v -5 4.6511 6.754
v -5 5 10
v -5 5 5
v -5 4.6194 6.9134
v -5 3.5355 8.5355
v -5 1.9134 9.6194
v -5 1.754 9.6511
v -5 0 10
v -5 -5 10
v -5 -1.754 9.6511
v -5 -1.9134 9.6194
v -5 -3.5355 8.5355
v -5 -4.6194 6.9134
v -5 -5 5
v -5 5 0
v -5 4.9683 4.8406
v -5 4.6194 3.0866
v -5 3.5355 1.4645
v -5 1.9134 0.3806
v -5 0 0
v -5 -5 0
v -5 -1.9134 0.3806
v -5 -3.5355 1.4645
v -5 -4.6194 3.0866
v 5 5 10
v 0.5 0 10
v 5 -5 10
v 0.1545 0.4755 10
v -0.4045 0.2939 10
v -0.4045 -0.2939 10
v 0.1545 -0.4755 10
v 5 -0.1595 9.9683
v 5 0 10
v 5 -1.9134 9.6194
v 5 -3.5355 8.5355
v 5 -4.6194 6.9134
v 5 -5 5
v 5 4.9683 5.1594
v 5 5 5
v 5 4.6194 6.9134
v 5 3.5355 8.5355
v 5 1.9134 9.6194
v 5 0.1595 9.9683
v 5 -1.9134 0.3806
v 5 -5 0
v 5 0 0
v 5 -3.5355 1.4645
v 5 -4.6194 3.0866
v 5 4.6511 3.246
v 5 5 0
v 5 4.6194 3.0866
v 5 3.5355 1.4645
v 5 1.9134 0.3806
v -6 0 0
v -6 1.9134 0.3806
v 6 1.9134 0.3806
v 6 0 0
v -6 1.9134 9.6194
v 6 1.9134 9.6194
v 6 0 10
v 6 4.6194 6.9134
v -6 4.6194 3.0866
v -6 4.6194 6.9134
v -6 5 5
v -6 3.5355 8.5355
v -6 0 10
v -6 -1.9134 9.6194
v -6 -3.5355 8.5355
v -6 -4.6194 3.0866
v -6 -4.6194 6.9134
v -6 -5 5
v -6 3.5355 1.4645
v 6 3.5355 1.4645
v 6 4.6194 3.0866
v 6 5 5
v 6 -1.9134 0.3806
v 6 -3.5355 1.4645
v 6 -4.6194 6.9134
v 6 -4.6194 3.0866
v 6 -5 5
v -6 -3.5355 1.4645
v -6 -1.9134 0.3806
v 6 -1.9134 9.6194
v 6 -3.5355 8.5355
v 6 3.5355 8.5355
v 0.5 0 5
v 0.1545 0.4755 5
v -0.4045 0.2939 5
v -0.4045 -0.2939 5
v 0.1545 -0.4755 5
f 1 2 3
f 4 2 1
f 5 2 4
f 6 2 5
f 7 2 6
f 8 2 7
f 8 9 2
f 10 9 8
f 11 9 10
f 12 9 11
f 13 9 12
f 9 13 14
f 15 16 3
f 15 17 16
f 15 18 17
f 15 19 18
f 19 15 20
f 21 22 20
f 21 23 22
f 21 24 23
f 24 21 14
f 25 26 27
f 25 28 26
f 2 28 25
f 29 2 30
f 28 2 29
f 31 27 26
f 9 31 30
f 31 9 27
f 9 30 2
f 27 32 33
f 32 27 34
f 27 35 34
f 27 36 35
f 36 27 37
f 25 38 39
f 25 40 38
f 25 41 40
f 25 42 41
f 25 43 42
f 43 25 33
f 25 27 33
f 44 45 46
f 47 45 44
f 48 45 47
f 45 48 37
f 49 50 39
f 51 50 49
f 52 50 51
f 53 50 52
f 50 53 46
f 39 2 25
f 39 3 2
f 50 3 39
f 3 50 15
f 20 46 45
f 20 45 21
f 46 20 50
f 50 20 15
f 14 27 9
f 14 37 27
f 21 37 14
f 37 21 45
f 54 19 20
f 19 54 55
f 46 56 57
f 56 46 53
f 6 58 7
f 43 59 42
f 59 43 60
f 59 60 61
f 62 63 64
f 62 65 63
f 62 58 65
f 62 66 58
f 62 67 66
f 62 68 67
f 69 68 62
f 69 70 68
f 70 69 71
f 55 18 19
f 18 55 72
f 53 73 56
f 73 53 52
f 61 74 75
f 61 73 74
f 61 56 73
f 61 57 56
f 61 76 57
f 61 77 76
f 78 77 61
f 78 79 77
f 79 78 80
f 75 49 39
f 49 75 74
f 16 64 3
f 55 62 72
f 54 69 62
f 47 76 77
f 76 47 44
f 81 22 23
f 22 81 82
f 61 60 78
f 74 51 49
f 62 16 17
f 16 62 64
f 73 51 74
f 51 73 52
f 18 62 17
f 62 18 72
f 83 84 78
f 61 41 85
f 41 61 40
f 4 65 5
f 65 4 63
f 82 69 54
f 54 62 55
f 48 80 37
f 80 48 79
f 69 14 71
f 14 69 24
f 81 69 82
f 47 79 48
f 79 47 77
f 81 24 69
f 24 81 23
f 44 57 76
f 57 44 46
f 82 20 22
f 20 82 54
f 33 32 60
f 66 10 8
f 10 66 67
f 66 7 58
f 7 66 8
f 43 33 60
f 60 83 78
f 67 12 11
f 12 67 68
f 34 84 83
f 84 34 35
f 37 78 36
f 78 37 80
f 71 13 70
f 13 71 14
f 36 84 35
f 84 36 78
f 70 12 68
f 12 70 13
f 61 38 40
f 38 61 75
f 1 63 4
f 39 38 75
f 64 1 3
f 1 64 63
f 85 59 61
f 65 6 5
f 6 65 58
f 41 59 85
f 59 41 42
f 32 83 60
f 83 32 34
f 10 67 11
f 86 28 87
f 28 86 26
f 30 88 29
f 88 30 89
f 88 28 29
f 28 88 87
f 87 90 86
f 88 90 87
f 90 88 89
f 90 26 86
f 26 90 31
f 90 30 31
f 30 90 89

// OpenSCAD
cube_size = 10; // [10:Small,20:Medium,30:Large]

hole_diameter = 1; 
hole_radius = hole_diameter/2;

// How deep should the center hole be?
hole_depth = 5; // [0,1,5,50]

show_wheels = "yes"; // [yes,no]

// How thick should the side wheels be?
wheel_thickness = 1; // [1:40]

// ignore this variable!
// foo=1;

// don't turn functions into params!
function BEZ03(u) = pow((1-u), 3);

// ignore variable values
bing = 3+4;
baz = 3 / hole_depth;

difference() {
  union() {
    translate([0, 0, cube_size/2]) cube([cube_size,cube_size,cube_size], center=true);
    if (show_wheels == "yes") {
      translate([0, 0, cube_size/2]) rotate([0, 90, 0]) {
        cylinder(r=cube_size/2, h=cube_size+(wheel_thickness*2), center=true);
      }
    }
  }
  translate([0, 0, cube_size-hole_depth]) cylinder(r=hole_radius, h=hole_depth);
}
        
